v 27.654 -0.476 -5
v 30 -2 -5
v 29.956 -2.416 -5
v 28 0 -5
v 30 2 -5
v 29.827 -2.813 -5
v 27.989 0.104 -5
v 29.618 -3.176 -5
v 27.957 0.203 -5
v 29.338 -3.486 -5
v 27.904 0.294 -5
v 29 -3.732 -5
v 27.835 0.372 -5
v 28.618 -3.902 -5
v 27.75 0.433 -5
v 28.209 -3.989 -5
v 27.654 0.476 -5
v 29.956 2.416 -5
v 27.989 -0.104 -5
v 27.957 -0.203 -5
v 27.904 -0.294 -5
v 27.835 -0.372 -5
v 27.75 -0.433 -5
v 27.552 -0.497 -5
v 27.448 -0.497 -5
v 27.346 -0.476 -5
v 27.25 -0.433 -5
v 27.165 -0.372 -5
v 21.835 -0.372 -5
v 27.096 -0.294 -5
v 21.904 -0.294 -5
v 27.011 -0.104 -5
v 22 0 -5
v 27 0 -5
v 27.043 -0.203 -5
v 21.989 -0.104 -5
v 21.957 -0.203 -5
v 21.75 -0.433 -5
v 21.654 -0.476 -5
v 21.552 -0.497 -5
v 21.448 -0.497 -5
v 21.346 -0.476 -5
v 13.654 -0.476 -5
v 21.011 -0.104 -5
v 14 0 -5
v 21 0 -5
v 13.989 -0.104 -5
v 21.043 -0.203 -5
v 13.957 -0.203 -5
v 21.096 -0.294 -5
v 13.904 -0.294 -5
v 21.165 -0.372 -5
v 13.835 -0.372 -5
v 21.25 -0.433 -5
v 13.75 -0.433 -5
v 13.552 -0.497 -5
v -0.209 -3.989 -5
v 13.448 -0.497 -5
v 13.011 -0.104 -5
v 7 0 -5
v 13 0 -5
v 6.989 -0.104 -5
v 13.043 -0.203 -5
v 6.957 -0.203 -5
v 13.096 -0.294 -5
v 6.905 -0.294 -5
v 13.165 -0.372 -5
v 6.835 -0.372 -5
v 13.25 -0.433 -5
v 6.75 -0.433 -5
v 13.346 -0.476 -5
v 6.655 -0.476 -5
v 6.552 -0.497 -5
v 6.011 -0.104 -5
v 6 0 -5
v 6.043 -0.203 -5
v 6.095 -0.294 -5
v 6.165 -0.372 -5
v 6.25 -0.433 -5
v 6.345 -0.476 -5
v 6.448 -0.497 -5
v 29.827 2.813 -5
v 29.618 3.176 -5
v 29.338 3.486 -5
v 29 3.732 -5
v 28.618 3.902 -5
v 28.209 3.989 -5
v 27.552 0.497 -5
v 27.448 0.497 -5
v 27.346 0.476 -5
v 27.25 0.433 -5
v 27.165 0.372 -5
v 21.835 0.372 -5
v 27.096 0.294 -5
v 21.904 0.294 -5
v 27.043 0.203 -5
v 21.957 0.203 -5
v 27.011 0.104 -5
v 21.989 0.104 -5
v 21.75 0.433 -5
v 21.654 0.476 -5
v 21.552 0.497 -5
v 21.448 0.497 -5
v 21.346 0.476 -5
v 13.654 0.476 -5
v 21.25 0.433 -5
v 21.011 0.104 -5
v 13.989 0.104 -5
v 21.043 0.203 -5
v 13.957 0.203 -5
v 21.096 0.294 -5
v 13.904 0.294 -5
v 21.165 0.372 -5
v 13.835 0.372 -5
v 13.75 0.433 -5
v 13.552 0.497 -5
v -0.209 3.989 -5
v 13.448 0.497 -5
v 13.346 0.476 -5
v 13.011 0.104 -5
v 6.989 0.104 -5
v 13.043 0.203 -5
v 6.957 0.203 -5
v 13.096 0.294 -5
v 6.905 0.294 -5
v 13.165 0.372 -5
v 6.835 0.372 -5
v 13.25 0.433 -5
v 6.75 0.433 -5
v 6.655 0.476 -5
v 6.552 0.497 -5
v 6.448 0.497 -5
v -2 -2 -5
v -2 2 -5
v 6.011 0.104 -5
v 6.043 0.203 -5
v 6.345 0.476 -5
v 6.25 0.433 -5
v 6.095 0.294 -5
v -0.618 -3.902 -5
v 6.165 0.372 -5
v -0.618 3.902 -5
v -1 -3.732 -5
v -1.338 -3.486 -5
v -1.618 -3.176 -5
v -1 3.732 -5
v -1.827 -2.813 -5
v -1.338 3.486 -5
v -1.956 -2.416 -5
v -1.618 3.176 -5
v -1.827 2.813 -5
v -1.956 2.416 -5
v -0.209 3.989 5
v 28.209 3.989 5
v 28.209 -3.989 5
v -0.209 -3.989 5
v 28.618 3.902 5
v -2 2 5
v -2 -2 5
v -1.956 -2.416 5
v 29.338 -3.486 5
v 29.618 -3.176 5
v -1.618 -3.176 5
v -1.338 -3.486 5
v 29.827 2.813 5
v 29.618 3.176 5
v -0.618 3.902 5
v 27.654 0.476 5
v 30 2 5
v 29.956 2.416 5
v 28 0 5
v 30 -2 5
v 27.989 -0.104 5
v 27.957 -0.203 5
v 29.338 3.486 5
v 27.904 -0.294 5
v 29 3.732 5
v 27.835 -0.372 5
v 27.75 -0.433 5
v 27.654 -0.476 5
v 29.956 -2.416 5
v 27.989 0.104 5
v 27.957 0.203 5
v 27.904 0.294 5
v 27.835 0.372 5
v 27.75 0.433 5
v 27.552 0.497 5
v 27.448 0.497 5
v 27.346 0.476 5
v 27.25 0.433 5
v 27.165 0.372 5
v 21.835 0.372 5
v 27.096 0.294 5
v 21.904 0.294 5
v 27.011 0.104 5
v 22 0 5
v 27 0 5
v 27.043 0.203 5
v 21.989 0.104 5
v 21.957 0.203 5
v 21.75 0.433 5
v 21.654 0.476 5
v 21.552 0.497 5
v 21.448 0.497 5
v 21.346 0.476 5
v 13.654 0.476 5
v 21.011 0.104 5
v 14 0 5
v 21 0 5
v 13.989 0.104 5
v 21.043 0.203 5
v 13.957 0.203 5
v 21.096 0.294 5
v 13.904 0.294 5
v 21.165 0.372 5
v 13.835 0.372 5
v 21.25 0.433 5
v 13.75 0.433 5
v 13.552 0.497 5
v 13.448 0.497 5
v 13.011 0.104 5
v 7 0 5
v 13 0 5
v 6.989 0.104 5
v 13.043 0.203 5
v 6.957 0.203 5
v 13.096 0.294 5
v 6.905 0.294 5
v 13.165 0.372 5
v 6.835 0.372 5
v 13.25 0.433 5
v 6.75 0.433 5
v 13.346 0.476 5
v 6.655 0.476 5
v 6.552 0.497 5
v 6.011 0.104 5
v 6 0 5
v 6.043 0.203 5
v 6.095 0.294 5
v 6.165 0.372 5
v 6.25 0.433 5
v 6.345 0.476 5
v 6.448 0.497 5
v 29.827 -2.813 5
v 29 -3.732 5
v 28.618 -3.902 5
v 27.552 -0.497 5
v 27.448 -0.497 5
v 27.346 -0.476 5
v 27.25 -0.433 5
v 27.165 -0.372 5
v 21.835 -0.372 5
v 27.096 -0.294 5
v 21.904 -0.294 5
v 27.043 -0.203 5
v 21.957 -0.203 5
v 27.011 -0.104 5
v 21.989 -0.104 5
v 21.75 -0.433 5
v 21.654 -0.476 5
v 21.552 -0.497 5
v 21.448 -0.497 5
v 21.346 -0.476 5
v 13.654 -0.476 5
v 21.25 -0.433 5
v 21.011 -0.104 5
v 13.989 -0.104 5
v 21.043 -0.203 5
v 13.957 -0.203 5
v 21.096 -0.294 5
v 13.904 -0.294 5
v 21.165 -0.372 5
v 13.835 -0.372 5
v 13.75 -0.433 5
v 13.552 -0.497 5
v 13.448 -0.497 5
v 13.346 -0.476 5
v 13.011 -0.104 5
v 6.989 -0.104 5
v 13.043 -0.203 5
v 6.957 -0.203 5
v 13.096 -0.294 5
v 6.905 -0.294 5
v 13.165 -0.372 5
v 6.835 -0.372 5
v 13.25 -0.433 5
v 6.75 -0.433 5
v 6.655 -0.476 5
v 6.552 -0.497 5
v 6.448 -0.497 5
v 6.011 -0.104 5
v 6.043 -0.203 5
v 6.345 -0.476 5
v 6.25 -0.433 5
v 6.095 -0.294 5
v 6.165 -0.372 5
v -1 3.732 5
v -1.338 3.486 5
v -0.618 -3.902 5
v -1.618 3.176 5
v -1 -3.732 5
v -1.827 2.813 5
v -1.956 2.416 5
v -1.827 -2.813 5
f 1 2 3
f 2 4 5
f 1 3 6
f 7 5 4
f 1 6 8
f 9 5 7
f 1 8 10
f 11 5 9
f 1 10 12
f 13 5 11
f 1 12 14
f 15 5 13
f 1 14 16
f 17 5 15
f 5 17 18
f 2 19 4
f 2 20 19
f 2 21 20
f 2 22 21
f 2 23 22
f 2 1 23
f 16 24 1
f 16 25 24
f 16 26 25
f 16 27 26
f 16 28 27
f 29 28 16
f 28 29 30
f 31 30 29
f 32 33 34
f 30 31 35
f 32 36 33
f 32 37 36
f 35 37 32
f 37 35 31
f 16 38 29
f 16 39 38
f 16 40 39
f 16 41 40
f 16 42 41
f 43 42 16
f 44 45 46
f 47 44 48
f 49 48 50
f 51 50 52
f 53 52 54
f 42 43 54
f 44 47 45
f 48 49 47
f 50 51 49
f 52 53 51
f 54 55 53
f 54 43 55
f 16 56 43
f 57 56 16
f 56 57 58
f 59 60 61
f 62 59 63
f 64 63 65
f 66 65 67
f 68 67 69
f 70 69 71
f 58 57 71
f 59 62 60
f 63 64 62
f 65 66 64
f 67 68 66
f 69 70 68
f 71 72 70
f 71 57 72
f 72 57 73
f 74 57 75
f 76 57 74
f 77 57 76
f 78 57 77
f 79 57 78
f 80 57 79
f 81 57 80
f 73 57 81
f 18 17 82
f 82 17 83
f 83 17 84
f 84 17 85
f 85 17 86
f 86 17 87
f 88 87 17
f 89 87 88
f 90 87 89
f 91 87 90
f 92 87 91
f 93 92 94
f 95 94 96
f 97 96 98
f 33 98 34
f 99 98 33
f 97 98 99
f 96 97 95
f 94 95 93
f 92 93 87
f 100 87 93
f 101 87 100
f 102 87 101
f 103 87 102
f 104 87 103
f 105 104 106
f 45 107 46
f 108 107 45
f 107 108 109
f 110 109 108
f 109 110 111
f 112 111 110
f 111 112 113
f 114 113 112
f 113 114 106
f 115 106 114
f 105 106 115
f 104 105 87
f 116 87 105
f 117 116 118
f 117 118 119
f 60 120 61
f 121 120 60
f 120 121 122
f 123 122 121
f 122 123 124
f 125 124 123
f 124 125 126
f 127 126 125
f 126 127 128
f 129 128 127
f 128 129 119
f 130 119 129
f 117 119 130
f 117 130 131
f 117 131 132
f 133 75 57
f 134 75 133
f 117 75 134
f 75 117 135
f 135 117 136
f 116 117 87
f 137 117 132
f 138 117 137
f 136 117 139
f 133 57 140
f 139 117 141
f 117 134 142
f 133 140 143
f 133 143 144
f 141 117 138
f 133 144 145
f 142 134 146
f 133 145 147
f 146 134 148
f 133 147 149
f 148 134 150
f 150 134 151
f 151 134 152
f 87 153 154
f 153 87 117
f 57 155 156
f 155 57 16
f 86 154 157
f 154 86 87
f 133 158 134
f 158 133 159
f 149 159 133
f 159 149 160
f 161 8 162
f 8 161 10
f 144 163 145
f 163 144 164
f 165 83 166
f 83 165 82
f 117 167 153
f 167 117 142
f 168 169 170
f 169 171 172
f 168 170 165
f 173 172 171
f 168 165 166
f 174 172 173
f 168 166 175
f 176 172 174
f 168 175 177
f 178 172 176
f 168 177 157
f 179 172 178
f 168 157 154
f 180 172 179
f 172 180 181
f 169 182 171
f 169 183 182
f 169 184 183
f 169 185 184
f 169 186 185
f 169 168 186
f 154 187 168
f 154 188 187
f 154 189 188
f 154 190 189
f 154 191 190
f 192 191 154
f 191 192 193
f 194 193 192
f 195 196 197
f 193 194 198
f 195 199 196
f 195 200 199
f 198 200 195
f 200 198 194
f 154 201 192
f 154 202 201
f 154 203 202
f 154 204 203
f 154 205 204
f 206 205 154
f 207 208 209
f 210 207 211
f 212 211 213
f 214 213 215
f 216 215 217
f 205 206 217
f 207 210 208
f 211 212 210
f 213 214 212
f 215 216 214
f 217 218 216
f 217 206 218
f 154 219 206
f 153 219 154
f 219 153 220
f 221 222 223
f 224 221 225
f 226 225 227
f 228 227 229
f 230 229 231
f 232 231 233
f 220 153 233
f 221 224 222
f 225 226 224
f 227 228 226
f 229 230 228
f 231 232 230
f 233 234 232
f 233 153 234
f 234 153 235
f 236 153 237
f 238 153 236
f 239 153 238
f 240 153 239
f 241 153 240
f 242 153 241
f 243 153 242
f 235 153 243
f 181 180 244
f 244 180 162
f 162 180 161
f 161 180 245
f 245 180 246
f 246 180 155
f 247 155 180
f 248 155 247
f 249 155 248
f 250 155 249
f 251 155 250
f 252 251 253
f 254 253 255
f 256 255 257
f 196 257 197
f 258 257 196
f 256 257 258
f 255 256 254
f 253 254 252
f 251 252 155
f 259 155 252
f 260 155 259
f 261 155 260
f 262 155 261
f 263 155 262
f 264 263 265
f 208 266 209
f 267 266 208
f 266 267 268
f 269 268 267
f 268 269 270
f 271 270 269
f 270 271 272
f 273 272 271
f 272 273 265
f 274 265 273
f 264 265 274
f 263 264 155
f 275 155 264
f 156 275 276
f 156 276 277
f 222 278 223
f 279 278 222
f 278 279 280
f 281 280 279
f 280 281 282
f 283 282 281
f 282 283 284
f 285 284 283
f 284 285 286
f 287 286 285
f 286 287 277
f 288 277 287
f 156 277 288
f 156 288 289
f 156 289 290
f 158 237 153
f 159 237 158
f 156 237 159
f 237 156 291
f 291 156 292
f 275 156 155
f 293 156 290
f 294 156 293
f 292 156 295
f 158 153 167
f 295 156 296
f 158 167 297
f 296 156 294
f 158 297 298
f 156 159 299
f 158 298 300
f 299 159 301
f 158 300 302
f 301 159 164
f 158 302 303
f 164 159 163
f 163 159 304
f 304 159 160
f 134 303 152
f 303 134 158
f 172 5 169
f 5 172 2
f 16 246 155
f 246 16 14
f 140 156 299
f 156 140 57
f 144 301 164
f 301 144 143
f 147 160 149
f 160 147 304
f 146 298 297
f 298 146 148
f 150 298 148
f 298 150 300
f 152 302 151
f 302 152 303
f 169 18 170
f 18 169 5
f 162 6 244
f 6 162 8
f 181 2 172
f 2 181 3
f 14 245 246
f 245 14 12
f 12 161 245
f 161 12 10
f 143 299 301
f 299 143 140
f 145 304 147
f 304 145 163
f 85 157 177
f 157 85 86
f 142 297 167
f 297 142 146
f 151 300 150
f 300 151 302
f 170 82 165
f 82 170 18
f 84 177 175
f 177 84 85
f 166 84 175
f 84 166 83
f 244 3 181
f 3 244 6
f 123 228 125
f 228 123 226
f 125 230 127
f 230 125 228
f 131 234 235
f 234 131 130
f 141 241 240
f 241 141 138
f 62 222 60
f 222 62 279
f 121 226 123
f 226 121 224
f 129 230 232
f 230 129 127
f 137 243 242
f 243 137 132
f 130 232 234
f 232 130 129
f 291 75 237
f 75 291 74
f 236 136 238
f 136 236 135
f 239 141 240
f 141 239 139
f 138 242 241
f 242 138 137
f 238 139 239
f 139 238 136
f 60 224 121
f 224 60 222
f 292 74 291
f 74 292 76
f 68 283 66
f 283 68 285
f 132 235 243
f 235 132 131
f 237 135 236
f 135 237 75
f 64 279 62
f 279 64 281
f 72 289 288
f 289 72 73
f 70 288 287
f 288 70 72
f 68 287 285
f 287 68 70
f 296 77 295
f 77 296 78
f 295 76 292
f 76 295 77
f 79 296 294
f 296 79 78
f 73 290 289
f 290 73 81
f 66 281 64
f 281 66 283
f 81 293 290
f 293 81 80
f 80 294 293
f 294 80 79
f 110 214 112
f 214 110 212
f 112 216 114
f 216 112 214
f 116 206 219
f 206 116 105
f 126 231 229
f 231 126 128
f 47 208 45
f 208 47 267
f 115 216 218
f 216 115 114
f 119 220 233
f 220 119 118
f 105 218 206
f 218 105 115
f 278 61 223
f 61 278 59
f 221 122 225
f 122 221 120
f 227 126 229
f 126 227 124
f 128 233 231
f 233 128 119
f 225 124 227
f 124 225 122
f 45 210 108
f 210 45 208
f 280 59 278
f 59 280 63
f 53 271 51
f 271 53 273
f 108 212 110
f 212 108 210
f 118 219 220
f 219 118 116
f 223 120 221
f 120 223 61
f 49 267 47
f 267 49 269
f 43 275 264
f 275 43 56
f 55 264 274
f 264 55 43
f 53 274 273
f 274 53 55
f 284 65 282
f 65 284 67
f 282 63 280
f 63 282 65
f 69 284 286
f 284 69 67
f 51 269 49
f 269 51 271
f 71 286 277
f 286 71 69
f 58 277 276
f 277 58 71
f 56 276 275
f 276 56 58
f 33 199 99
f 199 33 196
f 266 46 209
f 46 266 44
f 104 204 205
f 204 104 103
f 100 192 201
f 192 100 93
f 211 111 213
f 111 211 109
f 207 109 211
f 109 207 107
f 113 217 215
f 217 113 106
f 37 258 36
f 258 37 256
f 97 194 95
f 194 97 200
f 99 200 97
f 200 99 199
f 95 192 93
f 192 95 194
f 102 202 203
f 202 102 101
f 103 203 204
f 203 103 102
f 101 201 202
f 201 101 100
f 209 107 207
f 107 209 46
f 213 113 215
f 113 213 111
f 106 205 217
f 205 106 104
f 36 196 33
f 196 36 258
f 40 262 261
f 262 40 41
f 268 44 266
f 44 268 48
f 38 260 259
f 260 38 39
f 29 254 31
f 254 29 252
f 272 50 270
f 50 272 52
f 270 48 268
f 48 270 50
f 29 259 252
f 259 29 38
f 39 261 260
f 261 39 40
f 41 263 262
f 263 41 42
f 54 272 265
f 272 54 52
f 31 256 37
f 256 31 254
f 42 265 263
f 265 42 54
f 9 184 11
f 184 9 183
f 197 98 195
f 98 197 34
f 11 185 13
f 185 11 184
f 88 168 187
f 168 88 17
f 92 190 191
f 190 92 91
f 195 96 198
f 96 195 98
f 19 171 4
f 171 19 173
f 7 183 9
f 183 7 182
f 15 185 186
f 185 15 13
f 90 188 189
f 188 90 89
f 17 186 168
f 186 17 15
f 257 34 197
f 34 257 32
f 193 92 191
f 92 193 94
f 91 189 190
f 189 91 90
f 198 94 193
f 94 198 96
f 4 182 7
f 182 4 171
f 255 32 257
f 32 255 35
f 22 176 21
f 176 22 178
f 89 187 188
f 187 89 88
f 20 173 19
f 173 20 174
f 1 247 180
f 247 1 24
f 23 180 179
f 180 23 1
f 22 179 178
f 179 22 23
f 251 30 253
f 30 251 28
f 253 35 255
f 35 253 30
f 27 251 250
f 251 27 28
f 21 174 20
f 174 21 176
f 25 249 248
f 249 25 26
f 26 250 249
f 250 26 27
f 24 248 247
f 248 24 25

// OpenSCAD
$fn=30;
height=10;
radius=2;
difference(){
    hull(){
        translate([0,-2,0])cylinder(r=radius,h=height, center=true);
        translate([28,2,0])cylinder(r=radius,h=height, center=true);
        translate([0,2,0])cylinder(r=radius,h=height, center=true);
        translate([28,-2,0])cylinder(r=radius,h=height, center=true);
  }
    translate([6.5,0,0])cylinder(d=radius/2,h=height*10, center=true);
    translate([13.5,0,0])cylinder(d=radius/2,h=height*10, center=true);
    translate([21.5,0,0])cylinder(d=radius/2,h=height*10, center=true);
    translate([27.5,0,0])cylinder(d=radius/2,h=height*10, center=true);
}
  
